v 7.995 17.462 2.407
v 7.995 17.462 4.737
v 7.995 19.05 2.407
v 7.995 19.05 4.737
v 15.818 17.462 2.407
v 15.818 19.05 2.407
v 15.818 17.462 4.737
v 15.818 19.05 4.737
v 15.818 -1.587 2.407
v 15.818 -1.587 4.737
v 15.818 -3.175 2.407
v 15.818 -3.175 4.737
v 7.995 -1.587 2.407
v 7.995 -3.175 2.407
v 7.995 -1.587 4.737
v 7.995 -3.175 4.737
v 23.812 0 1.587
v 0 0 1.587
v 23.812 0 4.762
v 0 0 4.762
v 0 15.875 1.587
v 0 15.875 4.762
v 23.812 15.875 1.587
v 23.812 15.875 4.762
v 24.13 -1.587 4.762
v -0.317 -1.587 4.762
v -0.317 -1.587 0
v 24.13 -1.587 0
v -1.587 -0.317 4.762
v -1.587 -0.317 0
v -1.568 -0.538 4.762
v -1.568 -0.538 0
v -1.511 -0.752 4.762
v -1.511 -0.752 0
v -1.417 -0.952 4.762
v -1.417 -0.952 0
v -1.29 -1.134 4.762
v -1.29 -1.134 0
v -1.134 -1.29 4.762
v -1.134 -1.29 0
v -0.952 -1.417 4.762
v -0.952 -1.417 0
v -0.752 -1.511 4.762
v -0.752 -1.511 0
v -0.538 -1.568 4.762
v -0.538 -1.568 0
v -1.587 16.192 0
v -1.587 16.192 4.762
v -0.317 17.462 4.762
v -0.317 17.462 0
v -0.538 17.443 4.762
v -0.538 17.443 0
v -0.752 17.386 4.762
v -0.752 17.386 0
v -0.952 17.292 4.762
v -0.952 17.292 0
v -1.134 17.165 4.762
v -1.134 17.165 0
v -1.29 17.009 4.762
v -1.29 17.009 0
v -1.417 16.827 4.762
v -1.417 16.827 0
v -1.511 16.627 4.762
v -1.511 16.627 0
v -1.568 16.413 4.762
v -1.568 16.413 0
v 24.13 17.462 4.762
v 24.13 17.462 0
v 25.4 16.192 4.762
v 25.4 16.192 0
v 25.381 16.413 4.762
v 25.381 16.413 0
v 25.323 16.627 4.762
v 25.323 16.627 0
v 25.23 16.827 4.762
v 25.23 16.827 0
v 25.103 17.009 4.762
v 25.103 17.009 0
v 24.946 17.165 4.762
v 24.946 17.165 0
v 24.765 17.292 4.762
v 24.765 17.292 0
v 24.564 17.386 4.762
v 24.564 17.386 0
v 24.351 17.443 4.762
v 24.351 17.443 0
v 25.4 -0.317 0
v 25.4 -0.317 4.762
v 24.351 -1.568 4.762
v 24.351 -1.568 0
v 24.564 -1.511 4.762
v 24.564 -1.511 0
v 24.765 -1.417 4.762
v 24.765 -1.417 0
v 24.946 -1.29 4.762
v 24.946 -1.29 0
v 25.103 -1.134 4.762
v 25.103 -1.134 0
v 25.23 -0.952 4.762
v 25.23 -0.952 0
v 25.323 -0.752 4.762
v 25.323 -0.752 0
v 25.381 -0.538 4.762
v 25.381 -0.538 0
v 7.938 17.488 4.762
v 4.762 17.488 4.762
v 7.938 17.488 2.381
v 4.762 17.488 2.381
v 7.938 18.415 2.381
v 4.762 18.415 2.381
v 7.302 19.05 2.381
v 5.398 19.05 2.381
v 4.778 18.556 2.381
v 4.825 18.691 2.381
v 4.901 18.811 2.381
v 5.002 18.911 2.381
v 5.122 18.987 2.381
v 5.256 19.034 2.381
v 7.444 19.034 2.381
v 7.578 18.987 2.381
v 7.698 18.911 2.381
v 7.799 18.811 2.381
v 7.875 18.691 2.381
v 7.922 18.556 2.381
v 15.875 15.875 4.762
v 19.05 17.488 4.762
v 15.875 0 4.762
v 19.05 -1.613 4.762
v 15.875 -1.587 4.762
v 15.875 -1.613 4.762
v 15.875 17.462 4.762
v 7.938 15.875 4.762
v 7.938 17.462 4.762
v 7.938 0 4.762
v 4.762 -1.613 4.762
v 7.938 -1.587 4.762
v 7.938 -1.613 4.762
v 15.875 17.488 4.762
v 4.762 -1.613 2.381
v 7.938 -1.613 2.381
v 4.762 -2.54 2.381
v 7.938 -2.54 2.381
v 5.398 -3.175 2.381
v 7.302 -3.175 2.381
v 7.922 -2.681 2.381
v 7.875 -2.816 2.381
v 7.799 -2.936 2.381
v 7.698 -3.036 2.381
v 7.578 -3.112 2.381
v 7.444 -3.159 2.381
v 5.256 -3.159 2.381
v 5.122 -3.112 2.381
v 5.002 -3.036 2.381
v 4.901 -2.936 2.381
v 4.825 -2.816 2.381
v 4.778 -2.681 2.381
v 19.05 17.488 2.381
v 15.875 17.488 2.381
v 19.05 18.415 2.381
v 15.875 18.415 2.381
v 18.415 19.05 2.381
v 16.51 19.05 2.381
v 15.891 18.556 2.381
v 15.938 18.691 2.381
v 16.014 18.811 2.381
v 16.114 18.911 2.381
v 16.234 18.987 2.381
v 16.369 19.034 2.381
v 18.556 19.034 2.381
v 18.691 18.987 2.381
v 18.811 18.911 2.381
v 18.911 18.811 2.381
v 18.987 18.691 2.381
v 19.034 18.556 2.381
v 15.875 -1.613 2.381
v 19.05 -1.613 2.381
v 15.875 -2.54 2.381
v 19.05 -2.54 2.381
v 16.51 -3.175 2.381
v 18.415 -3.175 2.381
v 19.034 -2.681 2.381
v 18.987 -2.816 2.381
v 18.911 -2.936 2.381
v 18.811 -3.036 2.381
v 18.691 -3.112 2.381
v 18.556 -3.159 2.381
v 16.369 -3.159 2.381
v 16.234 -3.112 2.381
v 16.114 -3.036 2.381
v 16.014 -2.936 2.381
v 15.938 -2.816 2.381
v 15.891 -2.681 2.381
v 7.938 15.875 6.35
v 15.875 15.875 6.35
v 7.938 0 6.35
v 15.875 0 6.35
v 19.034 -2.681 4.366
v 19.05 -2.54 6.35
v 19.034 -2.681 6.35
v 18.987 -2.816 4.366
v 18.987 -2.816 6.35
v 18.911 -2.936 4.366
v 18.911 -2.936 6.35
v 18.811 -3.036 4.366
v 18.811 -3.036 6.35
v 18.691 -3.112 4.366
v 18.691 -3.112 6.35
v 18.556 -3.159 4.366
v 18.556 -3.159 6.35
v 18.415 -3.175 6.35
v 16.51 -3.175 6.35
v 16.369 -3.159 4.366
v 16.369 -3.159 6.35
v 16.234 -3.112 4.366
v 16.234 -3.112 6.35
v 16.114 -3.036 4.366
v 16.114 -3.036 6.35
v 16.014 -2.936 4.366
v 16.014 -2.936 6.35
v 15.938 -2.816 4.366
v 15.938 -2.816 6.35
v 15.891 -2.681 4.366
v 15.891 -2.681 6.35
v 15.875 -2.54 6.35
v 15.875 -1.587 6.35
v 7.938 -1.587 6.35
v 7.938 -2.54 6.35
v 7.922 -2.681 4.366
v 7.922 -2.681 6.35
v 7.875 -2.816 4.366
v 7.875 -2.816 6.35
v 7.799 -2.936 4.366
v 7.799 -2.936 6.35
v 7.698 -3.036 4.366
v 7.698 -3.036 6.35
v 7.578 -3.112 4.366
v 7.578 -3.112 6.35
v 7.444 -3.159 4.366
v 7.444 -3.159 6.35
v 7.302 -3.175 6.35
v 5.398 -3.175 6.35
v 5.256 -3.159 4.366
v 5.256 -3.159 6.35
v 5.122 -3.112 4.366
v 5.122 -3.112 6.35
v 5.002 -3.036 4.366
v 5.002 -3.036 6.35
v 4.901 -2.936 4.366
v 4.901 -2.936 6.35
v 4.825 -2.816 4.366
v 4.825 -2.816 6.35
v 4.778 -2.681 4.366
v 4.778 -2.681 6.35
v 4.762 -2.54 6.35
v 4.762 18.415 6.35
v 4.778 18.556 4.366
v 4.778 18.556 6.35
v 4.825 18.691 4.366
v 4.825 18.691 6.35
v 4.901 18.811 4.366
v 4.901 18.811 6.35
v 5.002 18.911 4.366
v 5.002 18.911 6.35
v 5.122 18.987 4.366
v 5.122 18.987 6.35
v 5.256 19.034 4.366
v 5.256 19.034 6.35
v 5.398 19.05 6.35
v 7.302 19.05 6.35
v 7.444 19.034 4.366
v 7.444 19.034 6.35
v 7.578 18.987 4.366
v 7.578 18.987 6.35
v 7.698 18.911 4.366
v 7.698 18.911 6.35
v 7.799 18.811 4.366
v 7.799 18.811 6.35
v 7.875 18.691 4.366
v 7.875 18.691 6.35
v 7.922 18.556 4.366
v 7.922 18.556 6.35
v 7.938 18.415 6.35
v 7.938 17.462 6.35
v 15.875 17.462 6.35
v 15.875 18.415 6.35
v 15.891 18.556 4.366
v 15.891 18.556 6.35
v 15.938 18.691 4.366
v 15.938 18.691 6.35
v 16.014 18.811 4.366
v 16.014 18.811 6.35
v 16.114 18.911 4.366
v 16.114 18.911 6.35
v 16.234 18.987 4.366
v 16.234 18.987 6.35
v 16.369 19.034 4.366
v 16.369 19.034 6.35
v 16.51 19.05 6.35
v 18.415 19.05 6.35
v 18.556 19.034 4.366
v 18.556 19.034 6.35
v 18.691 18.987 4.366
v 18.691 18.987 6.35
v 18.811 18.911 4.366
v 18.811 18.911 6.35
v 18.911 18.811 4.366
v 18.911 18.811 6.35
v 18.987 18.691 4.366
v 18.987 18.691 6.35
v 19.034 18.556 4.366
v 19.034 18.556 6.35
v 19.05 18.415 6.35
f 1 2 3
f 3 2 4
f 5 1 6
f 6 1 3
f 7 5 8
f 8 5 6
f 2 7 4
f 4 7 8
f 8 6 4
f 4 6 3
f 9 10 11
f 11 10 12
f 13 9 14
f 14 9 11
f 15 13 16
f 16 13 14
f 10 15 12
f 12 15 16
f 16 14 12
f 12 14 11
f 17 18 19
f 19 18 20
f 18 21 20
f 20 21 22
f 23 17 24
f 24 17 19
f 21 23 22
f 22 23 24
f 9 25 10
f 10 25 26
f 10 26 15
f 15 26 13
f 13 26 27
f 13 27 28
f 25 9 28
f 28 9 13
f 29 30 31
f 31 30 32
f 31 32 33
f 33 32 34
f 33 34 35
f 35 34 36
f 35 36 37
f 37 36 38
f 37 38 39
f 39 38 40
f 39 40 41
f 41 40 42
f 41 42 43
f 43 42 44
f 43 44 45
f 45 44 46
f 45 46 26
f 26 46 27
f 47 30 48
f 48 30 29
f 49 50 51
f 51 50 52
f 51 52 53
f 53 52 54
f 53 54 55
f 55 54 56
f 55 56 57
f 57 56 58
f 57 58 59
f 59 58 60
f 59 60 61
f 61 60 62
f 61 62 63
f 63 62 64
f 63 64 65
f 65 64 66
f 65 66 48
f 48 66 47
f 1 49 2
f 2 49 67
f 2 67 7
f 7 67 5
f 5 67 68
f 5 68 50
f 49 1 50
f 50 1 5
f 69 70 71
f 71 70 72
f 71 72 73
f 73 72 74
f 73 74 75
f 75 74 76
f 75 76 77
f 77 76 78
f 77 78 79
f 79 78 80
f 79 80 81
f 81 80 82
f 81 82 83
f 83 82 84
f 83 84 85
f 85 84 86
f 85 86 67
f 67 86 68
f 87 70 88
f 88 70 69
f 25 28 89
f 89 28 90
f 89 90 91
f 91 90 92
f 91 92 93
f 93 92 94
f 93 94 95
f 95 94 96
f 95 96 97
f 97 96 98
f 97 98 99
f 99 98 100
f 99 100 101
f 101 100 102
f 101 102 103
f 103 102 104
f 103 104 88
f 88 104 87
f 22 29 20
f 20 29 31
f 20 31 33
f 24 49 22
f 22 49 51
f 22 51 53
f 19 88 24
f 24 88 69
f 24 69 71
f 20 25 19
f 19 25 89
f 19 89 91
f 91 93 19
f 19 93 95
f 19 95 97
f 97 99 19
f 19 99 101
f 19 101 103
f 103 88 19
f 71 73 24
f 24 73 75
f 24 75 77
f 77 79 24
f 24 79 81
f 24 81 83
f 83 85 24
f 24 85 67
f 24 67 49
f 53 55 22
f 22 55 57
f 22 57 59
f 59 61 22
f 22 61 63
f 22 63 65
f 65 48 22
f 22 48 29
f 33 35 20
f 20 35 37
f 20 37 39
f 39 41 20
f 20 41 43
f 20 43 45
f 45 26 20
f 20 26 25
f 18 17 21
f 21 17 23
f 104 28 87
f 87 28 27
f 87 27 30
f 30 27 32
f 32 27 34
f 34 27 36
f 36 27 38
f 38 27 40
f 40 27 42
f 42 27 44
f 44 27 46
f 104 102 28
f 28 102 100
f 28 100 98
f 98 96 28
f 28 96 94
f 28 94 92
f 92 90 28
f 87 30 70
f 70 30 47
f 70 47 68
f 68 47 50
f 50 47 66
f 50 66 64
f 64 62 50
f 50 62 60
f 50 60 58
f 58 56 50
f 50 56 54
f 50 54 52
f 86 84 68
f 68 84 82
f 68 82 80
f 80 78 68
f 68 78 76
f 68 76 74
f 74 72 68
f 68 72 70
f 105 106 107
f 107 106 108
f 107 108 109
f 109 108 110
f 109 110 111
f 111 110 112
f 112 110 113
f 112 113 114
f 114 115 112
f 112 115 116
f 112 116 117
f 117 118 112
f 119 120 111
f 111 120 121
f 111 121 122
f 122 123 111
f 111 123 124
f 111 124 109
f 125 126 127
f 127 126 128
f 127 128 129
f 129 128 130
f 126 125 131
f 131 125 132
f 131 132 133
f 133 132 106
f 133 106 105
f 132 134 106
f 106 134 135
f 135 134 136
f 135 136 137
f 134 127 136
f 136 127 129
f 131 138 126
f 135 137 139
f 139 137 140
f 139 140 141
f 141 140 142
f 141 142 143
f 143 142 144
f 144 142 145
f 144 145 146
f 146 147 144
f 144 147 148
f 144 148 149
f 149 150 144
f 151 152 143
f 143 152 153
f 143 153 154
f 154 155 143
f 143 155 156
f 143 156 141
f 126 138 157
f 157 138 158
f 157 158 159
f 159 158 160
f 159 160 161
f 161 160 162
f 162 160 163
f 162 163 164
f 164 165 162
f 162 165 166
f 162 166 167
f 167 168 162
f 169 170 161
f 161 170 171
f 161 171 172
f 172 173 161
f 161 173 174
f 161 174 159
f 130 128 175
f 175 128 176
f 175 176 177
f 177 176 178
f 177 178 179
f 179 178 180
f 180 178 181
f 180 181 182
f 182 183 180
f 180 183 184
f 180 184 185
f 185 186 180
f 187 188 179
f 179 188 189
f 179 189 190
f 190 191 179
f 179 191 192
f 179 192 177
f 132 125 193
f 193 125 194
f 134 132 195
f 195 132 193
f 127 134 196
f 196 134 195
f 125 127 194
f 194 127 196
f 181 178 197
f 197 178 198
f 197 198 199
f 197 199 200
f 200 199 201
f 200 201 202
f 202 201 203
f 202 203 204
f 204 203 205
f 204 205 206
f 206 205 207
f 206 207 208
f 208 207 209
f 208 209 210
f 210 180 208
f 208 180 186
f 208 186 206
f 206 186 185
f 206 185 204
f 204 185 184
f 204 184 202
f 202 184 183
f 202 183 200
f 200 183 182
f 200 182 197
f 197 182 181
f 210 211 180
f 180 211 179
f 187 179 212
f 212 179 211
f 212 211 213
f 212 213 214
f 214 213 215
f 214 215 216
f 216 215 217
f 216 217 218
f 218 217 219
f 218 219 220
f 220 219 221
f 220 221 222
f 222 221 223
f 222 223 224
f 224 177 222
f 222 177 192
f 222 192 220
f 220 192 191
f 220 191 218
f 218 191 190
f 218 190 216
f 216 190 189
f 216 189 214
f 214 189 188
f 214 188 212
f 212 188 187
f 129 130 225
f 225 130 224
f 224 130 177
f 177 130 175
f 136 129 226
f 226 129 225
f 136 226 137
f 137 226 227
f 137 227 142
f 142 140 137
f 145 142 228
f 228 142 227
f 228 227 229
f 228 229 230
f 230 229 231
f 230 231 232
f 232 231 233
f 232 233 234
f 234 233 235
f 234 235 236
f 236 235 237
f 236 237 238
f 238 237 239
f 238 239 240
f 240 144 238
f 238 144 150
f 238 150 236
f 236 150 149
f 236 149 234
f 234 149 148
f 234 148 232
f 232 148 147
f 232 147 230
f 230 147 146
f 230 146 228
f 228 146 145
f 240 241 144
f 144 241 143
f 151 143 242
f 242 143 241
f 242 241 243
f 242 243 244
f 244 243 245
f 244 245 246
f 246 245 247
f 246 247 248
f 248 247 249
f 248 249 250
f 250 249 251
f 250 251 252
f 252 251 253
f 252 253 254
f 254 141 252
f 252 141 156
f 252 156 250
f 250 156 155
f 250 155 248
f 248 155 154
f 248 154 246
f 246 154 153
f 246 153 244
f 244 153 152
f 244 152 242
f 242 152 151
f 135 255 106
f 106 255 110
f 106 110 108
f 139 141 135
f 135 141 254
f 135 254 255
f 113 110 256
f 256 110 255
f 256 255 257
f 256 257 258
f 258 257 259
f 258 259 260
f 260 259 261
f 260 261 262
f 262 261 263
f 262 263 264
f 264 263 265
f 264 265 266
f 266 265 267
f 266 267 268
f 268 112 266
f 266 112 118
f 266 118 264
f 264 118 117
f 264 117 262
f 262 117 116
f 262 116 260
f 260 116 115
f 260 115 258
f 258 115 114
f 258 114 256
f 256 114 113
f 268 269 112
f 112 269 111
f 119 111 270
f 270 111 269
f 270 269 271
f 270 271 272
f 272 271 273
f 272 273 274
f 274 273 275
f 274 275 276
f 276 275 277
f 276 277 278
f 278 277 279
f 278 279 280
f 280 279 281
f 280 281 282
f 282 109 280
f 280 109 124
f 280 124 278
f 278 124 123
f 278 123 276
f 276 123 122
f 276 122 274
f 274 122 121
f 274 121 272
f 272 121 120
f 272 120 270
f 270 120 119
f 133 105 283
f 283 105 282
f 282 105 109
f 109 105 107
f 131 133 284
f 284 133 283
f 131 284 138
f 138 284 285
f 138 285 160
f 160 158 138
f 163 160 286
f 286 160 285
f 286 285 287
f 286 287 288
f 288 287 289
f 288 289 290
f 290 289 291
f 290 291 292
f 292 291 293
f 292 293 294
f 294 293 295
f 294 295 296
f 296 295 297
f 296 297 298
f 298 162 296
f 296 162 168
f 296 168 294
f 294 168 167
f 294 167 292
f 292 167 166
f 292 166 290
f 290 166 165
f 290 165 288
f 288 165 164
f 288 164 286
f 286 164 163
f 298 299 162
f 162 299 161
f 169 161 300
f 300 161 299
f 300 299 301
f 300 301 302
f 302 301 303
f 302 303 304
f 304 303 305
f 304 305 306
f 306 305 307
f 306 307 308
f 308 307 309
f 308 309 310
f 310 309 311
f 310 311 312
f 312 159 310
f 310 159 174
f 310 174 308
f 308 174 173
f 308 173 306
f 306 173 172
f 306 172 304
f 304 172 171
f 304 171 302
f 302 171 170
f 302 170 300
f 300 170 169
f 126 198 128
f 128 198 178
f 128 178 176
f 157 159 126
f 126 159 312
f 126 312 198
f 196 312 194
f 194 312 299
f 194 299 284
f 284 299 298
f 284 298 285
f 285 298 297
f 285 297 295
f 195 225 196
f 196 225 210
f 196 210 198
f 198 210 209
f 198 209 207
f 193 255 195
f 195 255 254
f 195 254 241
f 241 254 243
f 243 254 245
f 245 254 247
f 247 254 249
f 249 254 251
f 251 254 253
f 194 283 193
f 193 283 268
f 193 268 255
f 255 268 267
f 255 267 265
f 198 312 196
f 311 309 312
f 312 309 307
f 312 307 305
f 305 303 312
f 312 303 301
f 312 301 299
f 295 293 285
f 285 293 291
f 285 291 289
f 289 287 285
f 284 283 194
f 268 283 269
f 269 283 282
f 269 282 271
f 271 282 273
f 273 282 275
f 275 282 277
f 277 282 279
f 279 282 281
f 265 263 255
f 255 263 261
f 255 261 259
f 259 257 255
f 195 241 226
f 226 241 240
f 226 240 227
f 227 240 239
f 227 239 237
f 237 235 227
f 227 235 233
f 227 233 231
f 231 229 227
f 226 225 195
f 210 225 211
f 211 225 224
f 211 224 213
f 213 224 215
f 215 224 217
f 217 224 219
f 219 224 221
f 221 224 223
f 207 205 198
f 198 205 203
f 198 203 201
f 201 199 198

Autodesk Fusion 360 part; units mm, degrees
sketch "Sketch1" plane through (0, 0, 0) normal (0, 0, 1) x (1, 0, 0)
  line L0 (0, 0) -> (23.8125, 0)
  line L1 (23.8125, 0) -> (23.8125, 15.875)
  line L2 (23.8125, 15.875) -> (0, 15.875)
  line L3 (0, 15.875) -> (0, 0)
  line L4 (-0.3175, -1.5875) -> (24.13, -1.5875)
  line L5 (25.4, -0.3175) -> (25.4, 16.1925)
  line L6 (24.13, 17.4625) -> (-0.3175, 17.4625)
  line L7 (-1.5875, 16.1925) -> (-1.5875, -0.3175)
  arc A0 (-0.3175, 17.4625) -> (-1.5875, 16.1925) centre (-0.3175, 16.1925) ccw
  arc A1 (-1.5875, -0.3175) -> (-0.3175, -1.5875) centre (-0.3175, -0.3175) ccw
  arc A2 (25.4, 16.1925) -> (24.13, 17.4625) centre (24.13, 16.1925) ccw
  arc A3 (24.13, -1.5875) -> (25.4, -0.3175) centre (24.13, -0.3175) ccw
  dimension "d1" = 23.8125
  dimension "d2" = 15.875
  dimension "d4" = 1.27
extrude "Extrude1" add sketch "Sketch1" along normal blind 1.5875 contours L0 L1 L2 L3 makes body 1
extrude "Extrude2" add sketch "Sketch1" along normal blind 4.7625 bodies 1
sketch "Sketch2" plane through (0, 0, 4.7625) normal (0, 0, 1) x (-1, 0, 0)
  line L0 (0, 0) -> (0, -15.875)
  line L1 (0, -15.875) -> (-23.8125, -15.875)
  line L2 (-23.8125, -15.875) -> (-23.8125, 0)
  line L3 (-23.8125, 0) -> (0, 0)
  arc A0 (-24.13, 1.5875) -> (-25.4, 0.3175) centre (-24.13, 0.3175) ccw
  line L4 (-25.4, 0.3175) -> (-25.4, -16.1925)
  arc A1 (-25.4, -16.1925) -> (-24.13, -17.4625) centre (-24.13, -16.1925) ccw
  line L5 (-24.13, -17.4625) -> (0.3175, -17.4625)
  arc A2 (0.3175, -17.4625) -> (1.5875, -16.1925) centre (0.3175, -16.1925) ccw
  line L6 (1.5875, -16.1925) -> (1.5875, 0.3175)
  arc A3 (1.5875, 0.3175) -> (0.3175, 1.5875) centre (0.3175, 0.3175) ccw
  line L7 (0.3175, 1.5875) -> (-24.13, 1.5875)
  line L8 (1.5875, -7.9375) -> (-25.4, -7.9375)
  line L9 (1.5875, -7.9375) -> (-4.7625, -7.9375)
  line L10 (-4.7625, -7.9375) -> (-7.9375, -7.9375)
  line L11 (-25.4, -7.9375) -> (-19.05, -7.9375)
  line L12 (-19.05, -7.9375) -> (-15.875, -7.9375)
  line L13 (-7.9375, -7.9375) -> (-7.9375, 1.5875)
  line L14 (-7.9375, -7.9375) -> (-7.9375, -17.4625)
  line L15 (-7.9375, -17.4625) -> (-4.7625, -17.4625)
  line L16 (-4.7625, -17.4625) -> (-4.7625, 1.5875)
  line L17 (-4.7625, 1.5875) -> (-7.9375, 1.5875)
  line L18 (-15.875, -7.9375) -> (-15.875, -17.4625)
  line L19 (-19.05, -7.9375) -> (-19.05, -17.4625)
  line L20 (-15.875, -17.4625) -> (-19.05, -17.4625)
  line L21 (-19.05, -7.9375) -> (-19.05, 1.5875)
  line L22 (-19.05, 1.5875) -> (-15.875, 1.5875)
  line L23 (-15.875, -7.9375) -> (-15.875, 1.5875)
  line L24 (-7.9375, -15.875) -> (-15.875, -15.875)
  line L25 (-15.875, -17.4625) -> (-7.9375, -17.4625)
  line L26 (-7.9375, 1.5875) -> (-15.875, 1.5875)
  line L27 (-15.875, 0) -> (-7.9375, 0)
  line L28 (-4.7625, 1.5875) -> (-4.7625, 2.54)
  line L29 (-5.3975, 3.175) -> (-7.3025, 3.175)
  line L30 (-7.9375, 2.54) -> (-7.9375, 1.5875)
  line L31 (-15.875, 1.5875) -> (-15.875, 2.54)
  line L32 (-16.51, 3.175) -> (-18.415, 3.175)
  line L33 (-19.05, 2.54) -> (-19.05, 1.5875)
  line L34 (-19.05, -17.4625) -> (-19.05, -18.415)
  line L35 (-18.415, -19.05) -> (-16.51, -19.05)
  line L36 (-15.875, -18.415) -> (-15.875, -17.4625)
  line L37 (-7.9375, -17.4625) -> (-7.9375, -18.415)
  line L38 (-7.3025, -19.05) -> (-5.3975, -19.05)
  line L39 (-4.7625, -18.415) -> (-4.7625, -17.4625)
  arc A4 (-5.3975, -19.05) -> (-4.7625, -18.415) centre (-5.3975, -18.415) ccw
  arc A5 (-7.9375, -18.415) -> (-7.3025, -19.05) centre (-7.3025, -18.415) ccw
  arc A6 (-16.51, -19.05) -> (-15.875, -18.415) centre (-16.51, -18.415) ccw
  arc A7 (-19.05, -18.415) -> (-18.415, -19.05) centre (-18.415, -18.415) ccw
  arc A8 (-4.7625, 2.54) -> (-5.3975, 3.175) centre (-5.3975, 2.54) ccw
  arc A9 (-7.3025, 3.175) -> (-7.9375, 2.54) centre (-7.3025, 2.54) ccw
  arc A10 (-15.875, 2.54) -> (-16.51, 3.175) centre (-16.51, 2.54) ccw
  arc A11 (-18.415, 3.175) -> (-19.05, 2.54) centre (-18.415, 2.54) ccw
  line L40 (-6.35, 1.5875) -> (-6.35, 1.6129)
  line L41 (-6.35, 1.6129) -> (-7.9375, 1.6129)
  line L42 (-6.35, 1.6129) -> (-4.7625, 1.6129)
  line L43 (-17.4625, 1.5875) -> (-17.4625, 1.6129)
  line L44 (-17.4625, 1.6129) -> (-19.05, 1.6129)
  line L45 (-17.4625, 1.6129) -> (-15.875, 1.6129)
  line L46 (-17.4625, -17.4625) -> (-17.4625, -17.4879)
  line L47 (-17.4625, -17.4879) -> (-19.05, -17.4879)
  line L48 (-17.4625, -17.4879) -> (-15.875, -17.4879)
  line L49 (-6.35, -17.4625) -> (-6.35, -17.4879)
  line L50 (-6.35, -17.4879) -> (-7.9375, -17.4879)
  line L51 (-6.35, -17.4879) -> (-4.7625, -17.4879)
  point P0 (-4.7625, 3.175)
  point P1 (-15.875, 3.175)
  point P2 (-19.05, -19.05)
  point P3 (-7.9375, -19.05)
  dimension "d9" = 6.35
  dimension "d10" = 3.175
  dimension "d11" = 6.35
  dimension "d12" = 3.175
  dimension "d13" = 3.175
  dimension "d14" = 3.175
  dimension "d15" = 1.5875
  dimension "d16" = 1.5875
  dimension "d17" = 1.5875
  dimension "d18" = 1.5875
  dimension "d19" = 0.635
  dimension "d22" = 0.0254
  dimension "d23" = 0.0254
  dimension "d24" = 0.0254
  dimension "d25" = 0.0254
extrude "Extrude3" add sketch "Sketch2" along normal blind 1.5875 separate body contours L3 L8 L10 L13 L16 | L3 L7 L13 L16 L17 | L1 L8 L10 L14 L16 | L3 L7 L13 L23 L26 L27 | L7 L17 L28 L40 L42 | L1 L5 L14 L15 L16 | L3 L8 L12 L21 L23 | L3 L7 L21 L22 L23 | L7 L17 L30 L40 L41 | L28 L29 L30 A8 A9 L41 L42 | L1 L5 L14 L18 L24 L25 | L5 L15 L39 L49 L51 | L1 L8 L12 L18 L19 | L7 L22 L31 L43 L45 | L1 L5 L18 L19 L20 | L5 L15 L37 L49 L50 | L37 L38 L39 A4 A5 L50 L51 | L7 L22 L33 L43 L44 | L31 L32 L33 A10 A11 L44 L45 | L5 L20 L36 L46 L48 | L5 L20 L34 L46 L47 | L34 L35 L36 A6 A7 L47 L48 makes body 2
extrude "Extrude4" add sketch "Sketch2" against normal blind 2.3813 contours L28 L29 L30 A8 A9 L41 L42 | L37 L38 L39 A4 A5 L50 L51 | L31 L32 L33 A10 A11 L44 L45 | L34 L35 L36 A6 A7 L47 L48 bodies 2
sketch "Sketch3" plane through (0, -1.5875, 0) normal (0, -1, 0) x (1, 0, 0)
  line L0 (-0.3175, 0) -> (24.13, 0)
  line L1 (24.13, 0) -> (24.13, 4.7625)
  line L2 (24.13, 4.7625) -> (-0.3175, 4.7625)
  line L3 (-0.3175, 4.7625) -> (-0.3175, 0)
  line L4 (11.9062, 4.7625) -> (15.8432, 4.7625)
  line L5 (15.8432, 4.7625) -> (15.8432, 2.3813)
  line L6 (15.8432, 2.3813) -> (7.9692, 2.3813)
  line L7 (7.9692, 2.3813) -> (7.9692, 4.7625)
  line L8 (7.9692, 4.7625) -> (11.9062, 4.7625)
  line L9 (15.8178, 2.4066) -> (7.9946, 2.4066)
  line L10 (7.9946, 2.4066) -> (7.9946, 4.7371)
  line L11 (7.9946, 4.7371) -> (11.9062, 4.7371)
  line L12 (11.9062, 4.7371) -> (15.8178, 4.7371)
  line L13 (15.8178, 4.7371) -> (15.8178, 2.4066)
  dimension "d28" = 3.937
  dimension "d29" = 2.3813
  dimension "d30" = 7.874
  dimension "d31" = 0.0254
extrude "Extrude5" add sketch "Sketch3" along normal blind 1.5875 contours L9 L10 L11 L12 L13 bodies 1
sketch "Sketch4" plane through (0, 17.4625, 0) normal (0, 1, 0) x (-1, 0, 0)
  line L0 (-24.13, 0) -> (0.3175, 0)
  line L1 (0.3175, 0) -> (0.3175, 4.7625)
  line L2 (0.3175, 4.7625) -> (-24.13, 4.7625)
  line L3 (-24.13, 4.7625) -> (-24.13, 0)
  line L4 (-11.9063, 4.7625) -> (-7.9693, 4.7625)
  line L5 (-7.9693, 4.7625) -> (-7.9693, 2.3813)
  line L6 (-7.9693, 2.3813) -> (-15.8433, 2.3813)
  line L7 (-15.8433, 2.3813) -> (-15.8433, 4.7625)
  line L8 (-11.9063, 4.7625) -> (-15.8433, 4.7625)
  line L9 (-7.9947, 2.4066) -> (-15.8179, 2.4066)
  line L10 (-15.8179, 2.4066) -> (-15.8179, 4.7371)
  line L11 (-11.9063, 4.7371) -> (-15.8179, 4.7371)
  line L12 (-11.9063, 4.7371) -> (-7.9947, 4.7371)
  line L13 (-7.9947, 4.7371) -> (-7.9947, 2.4066)
  dimension "d34" = 3.937
  dimension "d35" = 2.3813
  dimension "d36" = 7.874
  dimension "d37" = 0.0254
extrude "Extrude6" add sketch "Sketch4" along normal blind 1.5875 contours L9 L10 L11 L12 L13 bodies 1
equation "d1 = ( 15 / 16 ) * 1 in"
equation "d2 = ( 5 / 8 ) * 1 in"
equation "d5 = ( 1 / 16 ) * 1 in"
equation "d7 = ( 3 / 16 ) * 1 in"
equation "d15 = ( 1 / 16 ) * 1 in"
equation "d16 = ( 1 / 16 ) * 1 in"
equation "d17 = ( 1 / 16 ) * 1 in"
equation "d18 = ( 1 / 16 ) * 1 in"
equation "d20 = ( 1 / 16 ) * 1 in"
equation "d26 = ( -3 / 32 ) * 1 in"
equation "d29 = ( 3 / 32 ) * 1 in"
equation "d32 = ( 1 / 16 ) * 1 in"
equation "d35 = ( 3 / 32 ) * 1 in"
equation "d38 = ( 1 / 16 ) * 1 in"
